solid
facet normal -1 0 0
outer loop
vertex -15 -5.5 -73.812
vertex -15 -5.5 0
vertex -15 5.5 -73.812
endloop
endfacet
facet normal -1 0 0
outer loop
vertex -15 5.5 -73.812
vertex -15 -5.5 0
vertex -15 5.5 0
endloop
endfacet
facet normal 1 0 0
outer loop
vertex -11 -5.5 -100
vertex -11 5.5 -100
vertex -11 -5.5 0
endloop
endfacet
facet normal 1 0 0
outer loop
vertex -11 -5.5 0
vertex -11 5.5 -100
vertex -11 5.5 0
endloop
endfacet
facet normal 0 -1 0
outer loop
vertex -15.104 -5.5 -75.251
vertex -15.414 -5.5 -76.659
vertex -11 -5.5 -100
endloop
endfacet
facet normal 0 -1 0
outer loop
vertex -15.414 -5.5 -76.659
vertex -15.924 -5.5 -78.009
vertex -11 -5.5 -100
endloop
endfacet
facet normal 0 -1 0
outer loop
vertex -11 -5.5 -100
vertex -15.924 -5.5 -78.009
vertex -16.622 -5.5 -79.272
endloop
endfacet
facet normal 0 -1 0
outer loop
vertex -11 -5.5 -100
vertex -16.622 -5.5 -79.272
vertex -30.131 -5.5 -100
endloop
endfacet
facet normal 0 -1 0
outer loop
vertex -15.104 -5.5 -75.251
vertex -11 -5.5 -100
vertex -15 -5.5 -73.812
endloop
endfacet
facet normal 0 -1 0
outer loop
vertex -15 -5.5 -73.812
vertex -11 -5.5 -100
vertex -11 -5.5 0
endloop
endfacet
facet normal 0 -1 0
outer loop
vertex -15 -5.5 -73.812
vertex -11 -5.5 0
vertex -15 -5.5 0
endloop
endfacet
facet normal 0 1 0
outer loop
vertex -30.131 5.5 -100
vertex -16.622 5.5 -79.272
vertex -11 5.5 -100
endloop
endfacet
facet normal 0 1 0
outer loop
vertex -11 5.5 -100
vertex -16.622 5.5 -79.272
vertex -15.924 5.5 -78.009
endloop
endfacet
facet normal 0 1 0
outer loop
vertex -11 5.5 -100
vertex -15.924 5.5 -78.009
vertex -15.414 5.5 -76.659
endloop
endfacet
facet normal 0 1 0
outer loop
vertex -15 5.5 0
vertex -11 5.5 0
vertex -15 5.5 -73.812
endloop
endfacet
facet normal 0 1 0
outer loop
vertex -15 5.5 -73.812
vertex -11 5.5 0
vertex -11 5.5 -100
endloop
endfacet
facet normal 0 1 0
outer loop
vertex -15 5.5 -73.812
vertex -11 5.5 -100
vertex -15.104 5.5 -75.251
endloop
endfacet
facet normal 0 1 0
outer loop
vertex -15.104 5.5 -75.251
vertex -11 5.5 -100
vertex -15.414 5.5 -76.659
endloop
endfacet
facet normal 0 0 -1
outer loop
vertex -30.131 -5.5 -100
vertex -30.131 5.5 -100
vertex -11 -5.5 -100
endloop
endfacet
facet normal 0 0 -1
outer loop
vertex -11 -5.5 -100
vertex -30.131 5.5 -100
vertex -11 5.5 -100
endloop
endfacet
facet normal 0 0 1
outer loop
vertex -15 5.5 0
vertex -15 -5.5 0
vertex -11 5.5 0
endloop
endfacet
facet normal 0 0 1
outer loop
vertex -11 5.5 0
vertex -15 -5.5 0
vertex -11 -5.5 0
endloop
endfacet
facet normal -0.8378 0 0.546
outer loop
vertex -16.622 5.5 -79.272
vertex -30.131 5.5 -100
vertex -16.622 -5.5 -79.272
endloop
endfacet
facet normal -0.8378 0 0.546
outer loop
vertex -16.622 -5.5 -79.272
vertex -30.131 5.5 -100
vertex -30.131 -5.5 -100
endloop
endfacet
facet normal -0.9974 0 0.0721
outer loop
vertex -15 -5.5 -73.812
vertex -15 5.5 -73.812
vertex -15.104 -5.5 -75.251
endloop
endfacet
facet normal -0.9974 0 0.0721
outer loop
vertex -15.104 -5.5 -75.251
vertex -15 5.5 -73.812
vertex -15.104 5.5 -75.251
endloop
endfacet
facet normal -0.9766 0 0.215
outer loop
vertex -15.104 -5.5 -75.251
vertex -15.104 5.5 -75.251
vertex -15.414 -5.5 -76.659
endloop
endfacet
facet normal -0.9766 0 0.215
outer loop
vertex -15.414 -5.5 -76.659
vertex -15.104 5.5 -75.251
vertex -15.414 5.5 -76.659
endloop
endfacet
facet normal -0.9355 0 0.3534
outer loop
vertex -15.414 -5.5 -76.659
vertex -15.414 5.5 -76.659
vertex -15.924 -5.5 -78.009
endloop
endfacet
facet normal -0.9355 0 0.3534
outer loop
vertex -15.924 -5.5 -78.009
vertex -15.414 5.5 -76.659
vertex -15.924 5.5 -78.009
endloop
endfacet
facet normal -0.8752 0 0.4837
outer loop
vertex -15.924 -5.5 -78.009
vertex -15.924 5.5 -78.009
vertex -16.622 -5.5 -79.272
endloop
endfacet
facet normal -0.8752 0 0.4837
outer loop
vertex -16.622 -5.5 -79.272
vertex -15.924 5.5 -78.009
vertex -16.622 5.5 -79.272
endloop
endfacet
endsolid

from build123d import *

# Parameters (mm, degrees)
CROQUIS1_W              = 4
CROQUIS1_H              = 11
SALIENTE_EXTRUIR1_DEPTH = 100
SALIENTE_EXTRUIR2_DEPTH = 11
REDONDEO1_R             = 10


with BuildPart() as part:
    # Croquis1 → Saliente-Extruir1 (new body)
    with BuildSketch(Plane.XY):
        with Locations((-13, 0)):
            Rectangle(CROQUIS1_W, CROQUIS1_H)
    extrude(amount=-SALIENTE_EXTRUIR1_DEPTH)

    # Croquis3 → Saliente-Extruir2 (add)
    with BuildSketch(Plane.XZ.offset(5.5)):
        Polygon((-15, -100), (-30.130974356, -100), (-15, -76.782527914), align=None)
    extrude(amount=-SALIENTE_EXTRUIR2_DEPTH)

    # Redondeo1
    redondeo1_edges = [part.edges().sort_by_distance(p)[0] for p in [
        (-15, 0, -76.782527914),
    ]]
    fillet(redondeo1_edges, radius=REDONDEO1_R)


solid = part.part
